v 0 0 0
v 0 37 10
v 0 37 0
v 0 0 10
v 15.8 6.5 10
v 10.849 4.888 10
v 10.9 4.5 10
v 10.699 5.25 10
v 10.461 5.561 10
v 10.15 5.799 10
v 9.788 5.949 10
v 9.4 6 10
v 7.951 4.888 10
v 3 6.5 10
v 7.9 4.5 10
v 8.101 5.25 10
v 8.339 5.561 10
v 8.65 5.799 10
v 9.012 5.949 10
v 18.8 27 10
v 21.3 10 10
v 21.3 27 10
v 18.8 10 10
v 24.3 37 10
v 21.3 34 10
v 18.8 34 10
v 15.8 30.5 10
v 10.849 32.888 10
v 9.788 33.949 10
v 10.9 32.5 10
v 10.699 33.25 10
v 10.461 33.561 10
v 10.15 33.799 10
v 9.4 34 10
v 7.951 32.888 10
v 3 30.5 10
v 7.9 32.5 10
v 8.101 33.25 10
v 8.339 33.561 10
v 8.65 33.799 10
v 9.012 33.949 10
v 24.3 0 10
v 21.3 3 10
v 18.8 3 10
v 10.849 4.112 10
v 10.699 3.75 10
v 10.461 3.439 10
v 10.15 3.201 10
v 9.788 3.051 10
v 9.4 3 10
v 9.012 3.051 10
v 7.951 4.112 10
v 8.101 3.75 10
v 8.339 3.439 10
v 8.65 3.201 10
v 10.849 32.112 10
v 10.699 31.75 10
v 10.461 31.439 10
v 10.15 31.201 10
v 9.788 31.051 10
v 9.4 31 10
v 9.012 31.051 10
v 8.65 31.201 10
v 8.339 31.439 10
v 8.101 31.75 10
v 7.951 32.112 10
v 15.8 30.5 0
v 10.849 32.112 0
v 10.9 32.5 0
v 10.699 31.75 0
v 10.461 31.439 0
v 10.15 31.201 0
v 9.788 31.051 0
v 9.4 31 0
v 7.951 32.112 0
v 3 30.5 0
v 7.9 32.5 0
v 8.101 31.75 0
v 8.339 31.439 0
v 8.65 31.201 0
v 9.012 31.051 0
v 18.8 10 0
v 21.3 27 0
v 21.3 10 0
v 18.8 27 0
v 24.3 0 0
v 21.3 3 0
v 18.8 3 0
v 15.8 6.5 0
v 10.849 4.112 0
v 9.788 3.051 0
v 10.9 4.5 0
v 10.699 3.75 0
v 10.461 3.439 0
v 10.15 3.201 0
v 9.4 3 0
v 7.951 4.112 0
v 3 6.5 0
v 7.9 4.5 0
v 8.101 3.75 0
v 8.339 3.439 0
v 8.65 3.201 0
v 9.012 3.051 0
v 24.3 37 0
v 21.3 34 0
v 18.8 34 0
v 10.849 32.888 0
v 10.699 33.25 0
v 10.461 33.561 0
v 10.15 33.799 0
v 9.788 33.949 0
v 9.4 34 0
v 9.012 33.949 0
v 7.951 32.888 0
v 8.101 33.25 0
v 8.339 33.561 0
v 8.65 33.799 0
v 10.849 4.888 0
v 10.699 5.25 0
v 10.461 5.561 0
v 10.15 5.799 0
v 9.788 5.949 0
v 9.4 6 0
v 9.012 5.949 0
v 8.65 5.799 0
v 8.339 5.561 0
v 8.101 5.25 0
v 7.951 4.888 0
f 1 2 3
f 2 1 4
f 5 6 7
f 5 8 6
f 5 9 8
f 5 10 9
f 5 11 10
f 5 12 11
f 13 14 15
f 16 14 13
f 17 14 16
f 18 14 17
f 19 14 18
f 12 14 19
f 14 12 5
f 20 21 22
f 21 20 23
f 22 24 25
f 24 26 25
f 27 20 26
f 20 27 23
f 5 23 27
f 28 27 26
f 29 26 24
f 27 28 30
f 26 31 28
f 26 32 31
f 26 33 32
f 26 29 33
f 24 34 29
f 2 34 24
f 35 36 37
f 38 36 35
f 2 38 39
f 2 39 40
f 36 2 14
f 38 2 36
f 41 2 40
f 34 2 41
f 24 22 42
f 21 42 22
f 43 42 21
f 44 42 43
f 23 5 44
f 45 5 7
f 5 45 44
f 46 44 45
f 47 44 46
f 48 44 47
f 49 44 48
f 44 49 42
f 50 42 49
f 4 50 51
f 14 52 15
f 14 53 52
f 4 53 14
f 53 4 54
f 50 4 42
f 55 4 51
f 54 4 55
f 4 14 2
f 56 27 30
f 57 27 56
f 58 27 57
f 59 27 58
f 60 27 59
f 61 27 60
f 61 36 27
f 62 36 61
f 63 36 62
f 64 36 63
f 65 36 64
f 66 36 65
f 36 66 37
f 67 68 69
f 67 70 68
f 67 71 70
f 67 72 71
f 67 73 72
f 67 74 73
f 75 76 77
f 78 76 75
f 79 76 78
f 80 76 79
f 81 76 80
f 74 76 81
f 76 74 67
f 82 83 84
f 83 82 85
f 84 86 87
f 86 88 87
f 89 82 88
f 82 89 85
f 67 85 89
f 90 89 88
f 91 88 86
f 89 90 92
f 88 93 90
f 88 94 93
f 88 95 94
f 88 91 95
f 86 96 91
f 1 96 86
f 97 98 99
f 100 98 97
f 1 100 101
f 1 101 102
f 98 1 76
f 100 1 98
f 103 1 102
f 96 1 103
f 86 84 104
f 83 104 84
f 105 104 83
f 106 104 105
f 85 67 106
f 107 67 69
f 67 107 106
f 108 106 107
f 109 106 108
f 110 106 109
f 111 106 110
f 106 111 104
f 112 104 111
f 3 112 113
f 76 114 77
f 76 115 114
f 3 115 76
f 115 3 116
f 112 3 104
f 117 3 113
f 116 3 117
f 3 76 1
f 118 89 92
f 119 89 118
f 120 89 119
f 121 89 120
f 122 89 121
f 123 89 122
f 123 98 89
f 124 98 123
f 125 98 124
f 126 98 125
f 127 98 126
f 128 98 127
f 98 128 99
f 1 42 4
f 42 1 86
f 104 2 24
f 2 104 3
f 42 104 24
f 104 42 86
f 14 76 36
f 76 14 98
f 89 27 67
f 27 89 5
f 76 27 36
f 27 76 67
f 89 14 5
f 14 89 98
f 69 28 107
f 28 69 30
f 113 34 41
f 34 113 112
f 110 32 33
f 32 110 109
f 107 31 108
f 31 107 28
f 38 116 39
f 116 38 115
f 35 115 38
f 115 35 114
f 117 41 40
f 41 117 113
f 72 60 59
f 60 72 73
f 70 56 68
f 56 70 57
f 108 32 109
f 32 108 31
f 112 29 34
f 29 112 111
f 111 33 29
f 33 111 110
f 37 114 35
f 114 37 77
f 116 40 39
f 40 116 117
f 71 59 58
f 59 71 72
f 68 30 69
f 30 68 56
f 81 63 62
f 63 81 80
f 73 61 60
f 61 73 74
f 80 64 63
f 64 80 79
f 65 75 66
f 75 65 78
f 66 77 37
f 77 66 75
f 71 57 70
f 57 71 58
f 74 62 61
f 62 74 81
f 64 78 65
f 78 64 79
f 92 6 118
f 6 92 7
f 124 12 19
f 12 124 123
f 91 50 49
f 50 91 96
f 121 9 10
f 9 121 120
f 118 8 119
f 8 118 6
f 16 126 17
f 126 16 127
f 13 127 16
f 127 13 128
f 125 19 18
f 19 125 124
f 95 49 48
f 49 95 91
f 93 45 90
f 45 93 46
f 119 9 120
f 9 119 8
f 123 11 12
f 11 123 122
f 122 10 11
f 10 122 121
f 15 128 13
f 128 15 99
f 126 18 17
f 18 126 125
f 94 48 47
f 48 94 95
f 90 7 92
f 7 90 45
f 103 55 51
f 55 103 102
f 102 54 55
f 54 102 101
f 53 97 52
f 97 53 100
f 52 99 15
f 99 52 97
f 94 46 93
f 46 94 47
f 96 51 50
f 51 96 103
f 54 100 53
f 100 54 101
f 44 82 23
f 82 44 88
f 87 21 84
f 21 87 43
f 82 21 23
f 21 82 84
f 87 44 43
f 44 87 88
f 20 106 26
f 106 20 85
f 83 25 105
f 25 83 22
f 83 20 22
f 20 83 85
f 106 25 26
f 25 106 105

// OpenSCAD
// ghetto Servo mount

servo_x = 12.80;
servo_y = 24;
wall = 3;
z = 10;
wall_extra = 6.5;
servo_screw_distance = 28;

band_thickness = 2.5;
band_w = 7;
mount_extra = band_thickness+wall;

difference () {
    union() {
        cube([servo_x+wall*2,  servo_y+wall_extra*2, z]);
        translate([mount_extra,0,0]) cube([servo_x+wall*2,  servo_y+wall_extra*2, z]);
    }
    translate([wall,wall_extra,0]) cube([servo_x,  servo_y, z]);
    
    color("cyan") translate([wall+servo_x/2,wall_extra+servo_y/2+servo_screw_distance/2,-1]) cylinder(d=3, h=z*2, $fn=24);
    color("cyan") translate([wall+servo_x/2,wall_extra+servo_y/2-servo_screw_distance/2,-1]) cylinder(d=3, h=z*2, $fn=24);
    
    // band cut
    translate([wall+servo_x+wall, wall, -1]) cube([band_thickness, band_w, z*2]);
    translate([wall+servo_x+wall, servo_y+wall_extra*2-wall-band_w, -1]) cube([band_thickness, band_w, z*2]);
    
}
